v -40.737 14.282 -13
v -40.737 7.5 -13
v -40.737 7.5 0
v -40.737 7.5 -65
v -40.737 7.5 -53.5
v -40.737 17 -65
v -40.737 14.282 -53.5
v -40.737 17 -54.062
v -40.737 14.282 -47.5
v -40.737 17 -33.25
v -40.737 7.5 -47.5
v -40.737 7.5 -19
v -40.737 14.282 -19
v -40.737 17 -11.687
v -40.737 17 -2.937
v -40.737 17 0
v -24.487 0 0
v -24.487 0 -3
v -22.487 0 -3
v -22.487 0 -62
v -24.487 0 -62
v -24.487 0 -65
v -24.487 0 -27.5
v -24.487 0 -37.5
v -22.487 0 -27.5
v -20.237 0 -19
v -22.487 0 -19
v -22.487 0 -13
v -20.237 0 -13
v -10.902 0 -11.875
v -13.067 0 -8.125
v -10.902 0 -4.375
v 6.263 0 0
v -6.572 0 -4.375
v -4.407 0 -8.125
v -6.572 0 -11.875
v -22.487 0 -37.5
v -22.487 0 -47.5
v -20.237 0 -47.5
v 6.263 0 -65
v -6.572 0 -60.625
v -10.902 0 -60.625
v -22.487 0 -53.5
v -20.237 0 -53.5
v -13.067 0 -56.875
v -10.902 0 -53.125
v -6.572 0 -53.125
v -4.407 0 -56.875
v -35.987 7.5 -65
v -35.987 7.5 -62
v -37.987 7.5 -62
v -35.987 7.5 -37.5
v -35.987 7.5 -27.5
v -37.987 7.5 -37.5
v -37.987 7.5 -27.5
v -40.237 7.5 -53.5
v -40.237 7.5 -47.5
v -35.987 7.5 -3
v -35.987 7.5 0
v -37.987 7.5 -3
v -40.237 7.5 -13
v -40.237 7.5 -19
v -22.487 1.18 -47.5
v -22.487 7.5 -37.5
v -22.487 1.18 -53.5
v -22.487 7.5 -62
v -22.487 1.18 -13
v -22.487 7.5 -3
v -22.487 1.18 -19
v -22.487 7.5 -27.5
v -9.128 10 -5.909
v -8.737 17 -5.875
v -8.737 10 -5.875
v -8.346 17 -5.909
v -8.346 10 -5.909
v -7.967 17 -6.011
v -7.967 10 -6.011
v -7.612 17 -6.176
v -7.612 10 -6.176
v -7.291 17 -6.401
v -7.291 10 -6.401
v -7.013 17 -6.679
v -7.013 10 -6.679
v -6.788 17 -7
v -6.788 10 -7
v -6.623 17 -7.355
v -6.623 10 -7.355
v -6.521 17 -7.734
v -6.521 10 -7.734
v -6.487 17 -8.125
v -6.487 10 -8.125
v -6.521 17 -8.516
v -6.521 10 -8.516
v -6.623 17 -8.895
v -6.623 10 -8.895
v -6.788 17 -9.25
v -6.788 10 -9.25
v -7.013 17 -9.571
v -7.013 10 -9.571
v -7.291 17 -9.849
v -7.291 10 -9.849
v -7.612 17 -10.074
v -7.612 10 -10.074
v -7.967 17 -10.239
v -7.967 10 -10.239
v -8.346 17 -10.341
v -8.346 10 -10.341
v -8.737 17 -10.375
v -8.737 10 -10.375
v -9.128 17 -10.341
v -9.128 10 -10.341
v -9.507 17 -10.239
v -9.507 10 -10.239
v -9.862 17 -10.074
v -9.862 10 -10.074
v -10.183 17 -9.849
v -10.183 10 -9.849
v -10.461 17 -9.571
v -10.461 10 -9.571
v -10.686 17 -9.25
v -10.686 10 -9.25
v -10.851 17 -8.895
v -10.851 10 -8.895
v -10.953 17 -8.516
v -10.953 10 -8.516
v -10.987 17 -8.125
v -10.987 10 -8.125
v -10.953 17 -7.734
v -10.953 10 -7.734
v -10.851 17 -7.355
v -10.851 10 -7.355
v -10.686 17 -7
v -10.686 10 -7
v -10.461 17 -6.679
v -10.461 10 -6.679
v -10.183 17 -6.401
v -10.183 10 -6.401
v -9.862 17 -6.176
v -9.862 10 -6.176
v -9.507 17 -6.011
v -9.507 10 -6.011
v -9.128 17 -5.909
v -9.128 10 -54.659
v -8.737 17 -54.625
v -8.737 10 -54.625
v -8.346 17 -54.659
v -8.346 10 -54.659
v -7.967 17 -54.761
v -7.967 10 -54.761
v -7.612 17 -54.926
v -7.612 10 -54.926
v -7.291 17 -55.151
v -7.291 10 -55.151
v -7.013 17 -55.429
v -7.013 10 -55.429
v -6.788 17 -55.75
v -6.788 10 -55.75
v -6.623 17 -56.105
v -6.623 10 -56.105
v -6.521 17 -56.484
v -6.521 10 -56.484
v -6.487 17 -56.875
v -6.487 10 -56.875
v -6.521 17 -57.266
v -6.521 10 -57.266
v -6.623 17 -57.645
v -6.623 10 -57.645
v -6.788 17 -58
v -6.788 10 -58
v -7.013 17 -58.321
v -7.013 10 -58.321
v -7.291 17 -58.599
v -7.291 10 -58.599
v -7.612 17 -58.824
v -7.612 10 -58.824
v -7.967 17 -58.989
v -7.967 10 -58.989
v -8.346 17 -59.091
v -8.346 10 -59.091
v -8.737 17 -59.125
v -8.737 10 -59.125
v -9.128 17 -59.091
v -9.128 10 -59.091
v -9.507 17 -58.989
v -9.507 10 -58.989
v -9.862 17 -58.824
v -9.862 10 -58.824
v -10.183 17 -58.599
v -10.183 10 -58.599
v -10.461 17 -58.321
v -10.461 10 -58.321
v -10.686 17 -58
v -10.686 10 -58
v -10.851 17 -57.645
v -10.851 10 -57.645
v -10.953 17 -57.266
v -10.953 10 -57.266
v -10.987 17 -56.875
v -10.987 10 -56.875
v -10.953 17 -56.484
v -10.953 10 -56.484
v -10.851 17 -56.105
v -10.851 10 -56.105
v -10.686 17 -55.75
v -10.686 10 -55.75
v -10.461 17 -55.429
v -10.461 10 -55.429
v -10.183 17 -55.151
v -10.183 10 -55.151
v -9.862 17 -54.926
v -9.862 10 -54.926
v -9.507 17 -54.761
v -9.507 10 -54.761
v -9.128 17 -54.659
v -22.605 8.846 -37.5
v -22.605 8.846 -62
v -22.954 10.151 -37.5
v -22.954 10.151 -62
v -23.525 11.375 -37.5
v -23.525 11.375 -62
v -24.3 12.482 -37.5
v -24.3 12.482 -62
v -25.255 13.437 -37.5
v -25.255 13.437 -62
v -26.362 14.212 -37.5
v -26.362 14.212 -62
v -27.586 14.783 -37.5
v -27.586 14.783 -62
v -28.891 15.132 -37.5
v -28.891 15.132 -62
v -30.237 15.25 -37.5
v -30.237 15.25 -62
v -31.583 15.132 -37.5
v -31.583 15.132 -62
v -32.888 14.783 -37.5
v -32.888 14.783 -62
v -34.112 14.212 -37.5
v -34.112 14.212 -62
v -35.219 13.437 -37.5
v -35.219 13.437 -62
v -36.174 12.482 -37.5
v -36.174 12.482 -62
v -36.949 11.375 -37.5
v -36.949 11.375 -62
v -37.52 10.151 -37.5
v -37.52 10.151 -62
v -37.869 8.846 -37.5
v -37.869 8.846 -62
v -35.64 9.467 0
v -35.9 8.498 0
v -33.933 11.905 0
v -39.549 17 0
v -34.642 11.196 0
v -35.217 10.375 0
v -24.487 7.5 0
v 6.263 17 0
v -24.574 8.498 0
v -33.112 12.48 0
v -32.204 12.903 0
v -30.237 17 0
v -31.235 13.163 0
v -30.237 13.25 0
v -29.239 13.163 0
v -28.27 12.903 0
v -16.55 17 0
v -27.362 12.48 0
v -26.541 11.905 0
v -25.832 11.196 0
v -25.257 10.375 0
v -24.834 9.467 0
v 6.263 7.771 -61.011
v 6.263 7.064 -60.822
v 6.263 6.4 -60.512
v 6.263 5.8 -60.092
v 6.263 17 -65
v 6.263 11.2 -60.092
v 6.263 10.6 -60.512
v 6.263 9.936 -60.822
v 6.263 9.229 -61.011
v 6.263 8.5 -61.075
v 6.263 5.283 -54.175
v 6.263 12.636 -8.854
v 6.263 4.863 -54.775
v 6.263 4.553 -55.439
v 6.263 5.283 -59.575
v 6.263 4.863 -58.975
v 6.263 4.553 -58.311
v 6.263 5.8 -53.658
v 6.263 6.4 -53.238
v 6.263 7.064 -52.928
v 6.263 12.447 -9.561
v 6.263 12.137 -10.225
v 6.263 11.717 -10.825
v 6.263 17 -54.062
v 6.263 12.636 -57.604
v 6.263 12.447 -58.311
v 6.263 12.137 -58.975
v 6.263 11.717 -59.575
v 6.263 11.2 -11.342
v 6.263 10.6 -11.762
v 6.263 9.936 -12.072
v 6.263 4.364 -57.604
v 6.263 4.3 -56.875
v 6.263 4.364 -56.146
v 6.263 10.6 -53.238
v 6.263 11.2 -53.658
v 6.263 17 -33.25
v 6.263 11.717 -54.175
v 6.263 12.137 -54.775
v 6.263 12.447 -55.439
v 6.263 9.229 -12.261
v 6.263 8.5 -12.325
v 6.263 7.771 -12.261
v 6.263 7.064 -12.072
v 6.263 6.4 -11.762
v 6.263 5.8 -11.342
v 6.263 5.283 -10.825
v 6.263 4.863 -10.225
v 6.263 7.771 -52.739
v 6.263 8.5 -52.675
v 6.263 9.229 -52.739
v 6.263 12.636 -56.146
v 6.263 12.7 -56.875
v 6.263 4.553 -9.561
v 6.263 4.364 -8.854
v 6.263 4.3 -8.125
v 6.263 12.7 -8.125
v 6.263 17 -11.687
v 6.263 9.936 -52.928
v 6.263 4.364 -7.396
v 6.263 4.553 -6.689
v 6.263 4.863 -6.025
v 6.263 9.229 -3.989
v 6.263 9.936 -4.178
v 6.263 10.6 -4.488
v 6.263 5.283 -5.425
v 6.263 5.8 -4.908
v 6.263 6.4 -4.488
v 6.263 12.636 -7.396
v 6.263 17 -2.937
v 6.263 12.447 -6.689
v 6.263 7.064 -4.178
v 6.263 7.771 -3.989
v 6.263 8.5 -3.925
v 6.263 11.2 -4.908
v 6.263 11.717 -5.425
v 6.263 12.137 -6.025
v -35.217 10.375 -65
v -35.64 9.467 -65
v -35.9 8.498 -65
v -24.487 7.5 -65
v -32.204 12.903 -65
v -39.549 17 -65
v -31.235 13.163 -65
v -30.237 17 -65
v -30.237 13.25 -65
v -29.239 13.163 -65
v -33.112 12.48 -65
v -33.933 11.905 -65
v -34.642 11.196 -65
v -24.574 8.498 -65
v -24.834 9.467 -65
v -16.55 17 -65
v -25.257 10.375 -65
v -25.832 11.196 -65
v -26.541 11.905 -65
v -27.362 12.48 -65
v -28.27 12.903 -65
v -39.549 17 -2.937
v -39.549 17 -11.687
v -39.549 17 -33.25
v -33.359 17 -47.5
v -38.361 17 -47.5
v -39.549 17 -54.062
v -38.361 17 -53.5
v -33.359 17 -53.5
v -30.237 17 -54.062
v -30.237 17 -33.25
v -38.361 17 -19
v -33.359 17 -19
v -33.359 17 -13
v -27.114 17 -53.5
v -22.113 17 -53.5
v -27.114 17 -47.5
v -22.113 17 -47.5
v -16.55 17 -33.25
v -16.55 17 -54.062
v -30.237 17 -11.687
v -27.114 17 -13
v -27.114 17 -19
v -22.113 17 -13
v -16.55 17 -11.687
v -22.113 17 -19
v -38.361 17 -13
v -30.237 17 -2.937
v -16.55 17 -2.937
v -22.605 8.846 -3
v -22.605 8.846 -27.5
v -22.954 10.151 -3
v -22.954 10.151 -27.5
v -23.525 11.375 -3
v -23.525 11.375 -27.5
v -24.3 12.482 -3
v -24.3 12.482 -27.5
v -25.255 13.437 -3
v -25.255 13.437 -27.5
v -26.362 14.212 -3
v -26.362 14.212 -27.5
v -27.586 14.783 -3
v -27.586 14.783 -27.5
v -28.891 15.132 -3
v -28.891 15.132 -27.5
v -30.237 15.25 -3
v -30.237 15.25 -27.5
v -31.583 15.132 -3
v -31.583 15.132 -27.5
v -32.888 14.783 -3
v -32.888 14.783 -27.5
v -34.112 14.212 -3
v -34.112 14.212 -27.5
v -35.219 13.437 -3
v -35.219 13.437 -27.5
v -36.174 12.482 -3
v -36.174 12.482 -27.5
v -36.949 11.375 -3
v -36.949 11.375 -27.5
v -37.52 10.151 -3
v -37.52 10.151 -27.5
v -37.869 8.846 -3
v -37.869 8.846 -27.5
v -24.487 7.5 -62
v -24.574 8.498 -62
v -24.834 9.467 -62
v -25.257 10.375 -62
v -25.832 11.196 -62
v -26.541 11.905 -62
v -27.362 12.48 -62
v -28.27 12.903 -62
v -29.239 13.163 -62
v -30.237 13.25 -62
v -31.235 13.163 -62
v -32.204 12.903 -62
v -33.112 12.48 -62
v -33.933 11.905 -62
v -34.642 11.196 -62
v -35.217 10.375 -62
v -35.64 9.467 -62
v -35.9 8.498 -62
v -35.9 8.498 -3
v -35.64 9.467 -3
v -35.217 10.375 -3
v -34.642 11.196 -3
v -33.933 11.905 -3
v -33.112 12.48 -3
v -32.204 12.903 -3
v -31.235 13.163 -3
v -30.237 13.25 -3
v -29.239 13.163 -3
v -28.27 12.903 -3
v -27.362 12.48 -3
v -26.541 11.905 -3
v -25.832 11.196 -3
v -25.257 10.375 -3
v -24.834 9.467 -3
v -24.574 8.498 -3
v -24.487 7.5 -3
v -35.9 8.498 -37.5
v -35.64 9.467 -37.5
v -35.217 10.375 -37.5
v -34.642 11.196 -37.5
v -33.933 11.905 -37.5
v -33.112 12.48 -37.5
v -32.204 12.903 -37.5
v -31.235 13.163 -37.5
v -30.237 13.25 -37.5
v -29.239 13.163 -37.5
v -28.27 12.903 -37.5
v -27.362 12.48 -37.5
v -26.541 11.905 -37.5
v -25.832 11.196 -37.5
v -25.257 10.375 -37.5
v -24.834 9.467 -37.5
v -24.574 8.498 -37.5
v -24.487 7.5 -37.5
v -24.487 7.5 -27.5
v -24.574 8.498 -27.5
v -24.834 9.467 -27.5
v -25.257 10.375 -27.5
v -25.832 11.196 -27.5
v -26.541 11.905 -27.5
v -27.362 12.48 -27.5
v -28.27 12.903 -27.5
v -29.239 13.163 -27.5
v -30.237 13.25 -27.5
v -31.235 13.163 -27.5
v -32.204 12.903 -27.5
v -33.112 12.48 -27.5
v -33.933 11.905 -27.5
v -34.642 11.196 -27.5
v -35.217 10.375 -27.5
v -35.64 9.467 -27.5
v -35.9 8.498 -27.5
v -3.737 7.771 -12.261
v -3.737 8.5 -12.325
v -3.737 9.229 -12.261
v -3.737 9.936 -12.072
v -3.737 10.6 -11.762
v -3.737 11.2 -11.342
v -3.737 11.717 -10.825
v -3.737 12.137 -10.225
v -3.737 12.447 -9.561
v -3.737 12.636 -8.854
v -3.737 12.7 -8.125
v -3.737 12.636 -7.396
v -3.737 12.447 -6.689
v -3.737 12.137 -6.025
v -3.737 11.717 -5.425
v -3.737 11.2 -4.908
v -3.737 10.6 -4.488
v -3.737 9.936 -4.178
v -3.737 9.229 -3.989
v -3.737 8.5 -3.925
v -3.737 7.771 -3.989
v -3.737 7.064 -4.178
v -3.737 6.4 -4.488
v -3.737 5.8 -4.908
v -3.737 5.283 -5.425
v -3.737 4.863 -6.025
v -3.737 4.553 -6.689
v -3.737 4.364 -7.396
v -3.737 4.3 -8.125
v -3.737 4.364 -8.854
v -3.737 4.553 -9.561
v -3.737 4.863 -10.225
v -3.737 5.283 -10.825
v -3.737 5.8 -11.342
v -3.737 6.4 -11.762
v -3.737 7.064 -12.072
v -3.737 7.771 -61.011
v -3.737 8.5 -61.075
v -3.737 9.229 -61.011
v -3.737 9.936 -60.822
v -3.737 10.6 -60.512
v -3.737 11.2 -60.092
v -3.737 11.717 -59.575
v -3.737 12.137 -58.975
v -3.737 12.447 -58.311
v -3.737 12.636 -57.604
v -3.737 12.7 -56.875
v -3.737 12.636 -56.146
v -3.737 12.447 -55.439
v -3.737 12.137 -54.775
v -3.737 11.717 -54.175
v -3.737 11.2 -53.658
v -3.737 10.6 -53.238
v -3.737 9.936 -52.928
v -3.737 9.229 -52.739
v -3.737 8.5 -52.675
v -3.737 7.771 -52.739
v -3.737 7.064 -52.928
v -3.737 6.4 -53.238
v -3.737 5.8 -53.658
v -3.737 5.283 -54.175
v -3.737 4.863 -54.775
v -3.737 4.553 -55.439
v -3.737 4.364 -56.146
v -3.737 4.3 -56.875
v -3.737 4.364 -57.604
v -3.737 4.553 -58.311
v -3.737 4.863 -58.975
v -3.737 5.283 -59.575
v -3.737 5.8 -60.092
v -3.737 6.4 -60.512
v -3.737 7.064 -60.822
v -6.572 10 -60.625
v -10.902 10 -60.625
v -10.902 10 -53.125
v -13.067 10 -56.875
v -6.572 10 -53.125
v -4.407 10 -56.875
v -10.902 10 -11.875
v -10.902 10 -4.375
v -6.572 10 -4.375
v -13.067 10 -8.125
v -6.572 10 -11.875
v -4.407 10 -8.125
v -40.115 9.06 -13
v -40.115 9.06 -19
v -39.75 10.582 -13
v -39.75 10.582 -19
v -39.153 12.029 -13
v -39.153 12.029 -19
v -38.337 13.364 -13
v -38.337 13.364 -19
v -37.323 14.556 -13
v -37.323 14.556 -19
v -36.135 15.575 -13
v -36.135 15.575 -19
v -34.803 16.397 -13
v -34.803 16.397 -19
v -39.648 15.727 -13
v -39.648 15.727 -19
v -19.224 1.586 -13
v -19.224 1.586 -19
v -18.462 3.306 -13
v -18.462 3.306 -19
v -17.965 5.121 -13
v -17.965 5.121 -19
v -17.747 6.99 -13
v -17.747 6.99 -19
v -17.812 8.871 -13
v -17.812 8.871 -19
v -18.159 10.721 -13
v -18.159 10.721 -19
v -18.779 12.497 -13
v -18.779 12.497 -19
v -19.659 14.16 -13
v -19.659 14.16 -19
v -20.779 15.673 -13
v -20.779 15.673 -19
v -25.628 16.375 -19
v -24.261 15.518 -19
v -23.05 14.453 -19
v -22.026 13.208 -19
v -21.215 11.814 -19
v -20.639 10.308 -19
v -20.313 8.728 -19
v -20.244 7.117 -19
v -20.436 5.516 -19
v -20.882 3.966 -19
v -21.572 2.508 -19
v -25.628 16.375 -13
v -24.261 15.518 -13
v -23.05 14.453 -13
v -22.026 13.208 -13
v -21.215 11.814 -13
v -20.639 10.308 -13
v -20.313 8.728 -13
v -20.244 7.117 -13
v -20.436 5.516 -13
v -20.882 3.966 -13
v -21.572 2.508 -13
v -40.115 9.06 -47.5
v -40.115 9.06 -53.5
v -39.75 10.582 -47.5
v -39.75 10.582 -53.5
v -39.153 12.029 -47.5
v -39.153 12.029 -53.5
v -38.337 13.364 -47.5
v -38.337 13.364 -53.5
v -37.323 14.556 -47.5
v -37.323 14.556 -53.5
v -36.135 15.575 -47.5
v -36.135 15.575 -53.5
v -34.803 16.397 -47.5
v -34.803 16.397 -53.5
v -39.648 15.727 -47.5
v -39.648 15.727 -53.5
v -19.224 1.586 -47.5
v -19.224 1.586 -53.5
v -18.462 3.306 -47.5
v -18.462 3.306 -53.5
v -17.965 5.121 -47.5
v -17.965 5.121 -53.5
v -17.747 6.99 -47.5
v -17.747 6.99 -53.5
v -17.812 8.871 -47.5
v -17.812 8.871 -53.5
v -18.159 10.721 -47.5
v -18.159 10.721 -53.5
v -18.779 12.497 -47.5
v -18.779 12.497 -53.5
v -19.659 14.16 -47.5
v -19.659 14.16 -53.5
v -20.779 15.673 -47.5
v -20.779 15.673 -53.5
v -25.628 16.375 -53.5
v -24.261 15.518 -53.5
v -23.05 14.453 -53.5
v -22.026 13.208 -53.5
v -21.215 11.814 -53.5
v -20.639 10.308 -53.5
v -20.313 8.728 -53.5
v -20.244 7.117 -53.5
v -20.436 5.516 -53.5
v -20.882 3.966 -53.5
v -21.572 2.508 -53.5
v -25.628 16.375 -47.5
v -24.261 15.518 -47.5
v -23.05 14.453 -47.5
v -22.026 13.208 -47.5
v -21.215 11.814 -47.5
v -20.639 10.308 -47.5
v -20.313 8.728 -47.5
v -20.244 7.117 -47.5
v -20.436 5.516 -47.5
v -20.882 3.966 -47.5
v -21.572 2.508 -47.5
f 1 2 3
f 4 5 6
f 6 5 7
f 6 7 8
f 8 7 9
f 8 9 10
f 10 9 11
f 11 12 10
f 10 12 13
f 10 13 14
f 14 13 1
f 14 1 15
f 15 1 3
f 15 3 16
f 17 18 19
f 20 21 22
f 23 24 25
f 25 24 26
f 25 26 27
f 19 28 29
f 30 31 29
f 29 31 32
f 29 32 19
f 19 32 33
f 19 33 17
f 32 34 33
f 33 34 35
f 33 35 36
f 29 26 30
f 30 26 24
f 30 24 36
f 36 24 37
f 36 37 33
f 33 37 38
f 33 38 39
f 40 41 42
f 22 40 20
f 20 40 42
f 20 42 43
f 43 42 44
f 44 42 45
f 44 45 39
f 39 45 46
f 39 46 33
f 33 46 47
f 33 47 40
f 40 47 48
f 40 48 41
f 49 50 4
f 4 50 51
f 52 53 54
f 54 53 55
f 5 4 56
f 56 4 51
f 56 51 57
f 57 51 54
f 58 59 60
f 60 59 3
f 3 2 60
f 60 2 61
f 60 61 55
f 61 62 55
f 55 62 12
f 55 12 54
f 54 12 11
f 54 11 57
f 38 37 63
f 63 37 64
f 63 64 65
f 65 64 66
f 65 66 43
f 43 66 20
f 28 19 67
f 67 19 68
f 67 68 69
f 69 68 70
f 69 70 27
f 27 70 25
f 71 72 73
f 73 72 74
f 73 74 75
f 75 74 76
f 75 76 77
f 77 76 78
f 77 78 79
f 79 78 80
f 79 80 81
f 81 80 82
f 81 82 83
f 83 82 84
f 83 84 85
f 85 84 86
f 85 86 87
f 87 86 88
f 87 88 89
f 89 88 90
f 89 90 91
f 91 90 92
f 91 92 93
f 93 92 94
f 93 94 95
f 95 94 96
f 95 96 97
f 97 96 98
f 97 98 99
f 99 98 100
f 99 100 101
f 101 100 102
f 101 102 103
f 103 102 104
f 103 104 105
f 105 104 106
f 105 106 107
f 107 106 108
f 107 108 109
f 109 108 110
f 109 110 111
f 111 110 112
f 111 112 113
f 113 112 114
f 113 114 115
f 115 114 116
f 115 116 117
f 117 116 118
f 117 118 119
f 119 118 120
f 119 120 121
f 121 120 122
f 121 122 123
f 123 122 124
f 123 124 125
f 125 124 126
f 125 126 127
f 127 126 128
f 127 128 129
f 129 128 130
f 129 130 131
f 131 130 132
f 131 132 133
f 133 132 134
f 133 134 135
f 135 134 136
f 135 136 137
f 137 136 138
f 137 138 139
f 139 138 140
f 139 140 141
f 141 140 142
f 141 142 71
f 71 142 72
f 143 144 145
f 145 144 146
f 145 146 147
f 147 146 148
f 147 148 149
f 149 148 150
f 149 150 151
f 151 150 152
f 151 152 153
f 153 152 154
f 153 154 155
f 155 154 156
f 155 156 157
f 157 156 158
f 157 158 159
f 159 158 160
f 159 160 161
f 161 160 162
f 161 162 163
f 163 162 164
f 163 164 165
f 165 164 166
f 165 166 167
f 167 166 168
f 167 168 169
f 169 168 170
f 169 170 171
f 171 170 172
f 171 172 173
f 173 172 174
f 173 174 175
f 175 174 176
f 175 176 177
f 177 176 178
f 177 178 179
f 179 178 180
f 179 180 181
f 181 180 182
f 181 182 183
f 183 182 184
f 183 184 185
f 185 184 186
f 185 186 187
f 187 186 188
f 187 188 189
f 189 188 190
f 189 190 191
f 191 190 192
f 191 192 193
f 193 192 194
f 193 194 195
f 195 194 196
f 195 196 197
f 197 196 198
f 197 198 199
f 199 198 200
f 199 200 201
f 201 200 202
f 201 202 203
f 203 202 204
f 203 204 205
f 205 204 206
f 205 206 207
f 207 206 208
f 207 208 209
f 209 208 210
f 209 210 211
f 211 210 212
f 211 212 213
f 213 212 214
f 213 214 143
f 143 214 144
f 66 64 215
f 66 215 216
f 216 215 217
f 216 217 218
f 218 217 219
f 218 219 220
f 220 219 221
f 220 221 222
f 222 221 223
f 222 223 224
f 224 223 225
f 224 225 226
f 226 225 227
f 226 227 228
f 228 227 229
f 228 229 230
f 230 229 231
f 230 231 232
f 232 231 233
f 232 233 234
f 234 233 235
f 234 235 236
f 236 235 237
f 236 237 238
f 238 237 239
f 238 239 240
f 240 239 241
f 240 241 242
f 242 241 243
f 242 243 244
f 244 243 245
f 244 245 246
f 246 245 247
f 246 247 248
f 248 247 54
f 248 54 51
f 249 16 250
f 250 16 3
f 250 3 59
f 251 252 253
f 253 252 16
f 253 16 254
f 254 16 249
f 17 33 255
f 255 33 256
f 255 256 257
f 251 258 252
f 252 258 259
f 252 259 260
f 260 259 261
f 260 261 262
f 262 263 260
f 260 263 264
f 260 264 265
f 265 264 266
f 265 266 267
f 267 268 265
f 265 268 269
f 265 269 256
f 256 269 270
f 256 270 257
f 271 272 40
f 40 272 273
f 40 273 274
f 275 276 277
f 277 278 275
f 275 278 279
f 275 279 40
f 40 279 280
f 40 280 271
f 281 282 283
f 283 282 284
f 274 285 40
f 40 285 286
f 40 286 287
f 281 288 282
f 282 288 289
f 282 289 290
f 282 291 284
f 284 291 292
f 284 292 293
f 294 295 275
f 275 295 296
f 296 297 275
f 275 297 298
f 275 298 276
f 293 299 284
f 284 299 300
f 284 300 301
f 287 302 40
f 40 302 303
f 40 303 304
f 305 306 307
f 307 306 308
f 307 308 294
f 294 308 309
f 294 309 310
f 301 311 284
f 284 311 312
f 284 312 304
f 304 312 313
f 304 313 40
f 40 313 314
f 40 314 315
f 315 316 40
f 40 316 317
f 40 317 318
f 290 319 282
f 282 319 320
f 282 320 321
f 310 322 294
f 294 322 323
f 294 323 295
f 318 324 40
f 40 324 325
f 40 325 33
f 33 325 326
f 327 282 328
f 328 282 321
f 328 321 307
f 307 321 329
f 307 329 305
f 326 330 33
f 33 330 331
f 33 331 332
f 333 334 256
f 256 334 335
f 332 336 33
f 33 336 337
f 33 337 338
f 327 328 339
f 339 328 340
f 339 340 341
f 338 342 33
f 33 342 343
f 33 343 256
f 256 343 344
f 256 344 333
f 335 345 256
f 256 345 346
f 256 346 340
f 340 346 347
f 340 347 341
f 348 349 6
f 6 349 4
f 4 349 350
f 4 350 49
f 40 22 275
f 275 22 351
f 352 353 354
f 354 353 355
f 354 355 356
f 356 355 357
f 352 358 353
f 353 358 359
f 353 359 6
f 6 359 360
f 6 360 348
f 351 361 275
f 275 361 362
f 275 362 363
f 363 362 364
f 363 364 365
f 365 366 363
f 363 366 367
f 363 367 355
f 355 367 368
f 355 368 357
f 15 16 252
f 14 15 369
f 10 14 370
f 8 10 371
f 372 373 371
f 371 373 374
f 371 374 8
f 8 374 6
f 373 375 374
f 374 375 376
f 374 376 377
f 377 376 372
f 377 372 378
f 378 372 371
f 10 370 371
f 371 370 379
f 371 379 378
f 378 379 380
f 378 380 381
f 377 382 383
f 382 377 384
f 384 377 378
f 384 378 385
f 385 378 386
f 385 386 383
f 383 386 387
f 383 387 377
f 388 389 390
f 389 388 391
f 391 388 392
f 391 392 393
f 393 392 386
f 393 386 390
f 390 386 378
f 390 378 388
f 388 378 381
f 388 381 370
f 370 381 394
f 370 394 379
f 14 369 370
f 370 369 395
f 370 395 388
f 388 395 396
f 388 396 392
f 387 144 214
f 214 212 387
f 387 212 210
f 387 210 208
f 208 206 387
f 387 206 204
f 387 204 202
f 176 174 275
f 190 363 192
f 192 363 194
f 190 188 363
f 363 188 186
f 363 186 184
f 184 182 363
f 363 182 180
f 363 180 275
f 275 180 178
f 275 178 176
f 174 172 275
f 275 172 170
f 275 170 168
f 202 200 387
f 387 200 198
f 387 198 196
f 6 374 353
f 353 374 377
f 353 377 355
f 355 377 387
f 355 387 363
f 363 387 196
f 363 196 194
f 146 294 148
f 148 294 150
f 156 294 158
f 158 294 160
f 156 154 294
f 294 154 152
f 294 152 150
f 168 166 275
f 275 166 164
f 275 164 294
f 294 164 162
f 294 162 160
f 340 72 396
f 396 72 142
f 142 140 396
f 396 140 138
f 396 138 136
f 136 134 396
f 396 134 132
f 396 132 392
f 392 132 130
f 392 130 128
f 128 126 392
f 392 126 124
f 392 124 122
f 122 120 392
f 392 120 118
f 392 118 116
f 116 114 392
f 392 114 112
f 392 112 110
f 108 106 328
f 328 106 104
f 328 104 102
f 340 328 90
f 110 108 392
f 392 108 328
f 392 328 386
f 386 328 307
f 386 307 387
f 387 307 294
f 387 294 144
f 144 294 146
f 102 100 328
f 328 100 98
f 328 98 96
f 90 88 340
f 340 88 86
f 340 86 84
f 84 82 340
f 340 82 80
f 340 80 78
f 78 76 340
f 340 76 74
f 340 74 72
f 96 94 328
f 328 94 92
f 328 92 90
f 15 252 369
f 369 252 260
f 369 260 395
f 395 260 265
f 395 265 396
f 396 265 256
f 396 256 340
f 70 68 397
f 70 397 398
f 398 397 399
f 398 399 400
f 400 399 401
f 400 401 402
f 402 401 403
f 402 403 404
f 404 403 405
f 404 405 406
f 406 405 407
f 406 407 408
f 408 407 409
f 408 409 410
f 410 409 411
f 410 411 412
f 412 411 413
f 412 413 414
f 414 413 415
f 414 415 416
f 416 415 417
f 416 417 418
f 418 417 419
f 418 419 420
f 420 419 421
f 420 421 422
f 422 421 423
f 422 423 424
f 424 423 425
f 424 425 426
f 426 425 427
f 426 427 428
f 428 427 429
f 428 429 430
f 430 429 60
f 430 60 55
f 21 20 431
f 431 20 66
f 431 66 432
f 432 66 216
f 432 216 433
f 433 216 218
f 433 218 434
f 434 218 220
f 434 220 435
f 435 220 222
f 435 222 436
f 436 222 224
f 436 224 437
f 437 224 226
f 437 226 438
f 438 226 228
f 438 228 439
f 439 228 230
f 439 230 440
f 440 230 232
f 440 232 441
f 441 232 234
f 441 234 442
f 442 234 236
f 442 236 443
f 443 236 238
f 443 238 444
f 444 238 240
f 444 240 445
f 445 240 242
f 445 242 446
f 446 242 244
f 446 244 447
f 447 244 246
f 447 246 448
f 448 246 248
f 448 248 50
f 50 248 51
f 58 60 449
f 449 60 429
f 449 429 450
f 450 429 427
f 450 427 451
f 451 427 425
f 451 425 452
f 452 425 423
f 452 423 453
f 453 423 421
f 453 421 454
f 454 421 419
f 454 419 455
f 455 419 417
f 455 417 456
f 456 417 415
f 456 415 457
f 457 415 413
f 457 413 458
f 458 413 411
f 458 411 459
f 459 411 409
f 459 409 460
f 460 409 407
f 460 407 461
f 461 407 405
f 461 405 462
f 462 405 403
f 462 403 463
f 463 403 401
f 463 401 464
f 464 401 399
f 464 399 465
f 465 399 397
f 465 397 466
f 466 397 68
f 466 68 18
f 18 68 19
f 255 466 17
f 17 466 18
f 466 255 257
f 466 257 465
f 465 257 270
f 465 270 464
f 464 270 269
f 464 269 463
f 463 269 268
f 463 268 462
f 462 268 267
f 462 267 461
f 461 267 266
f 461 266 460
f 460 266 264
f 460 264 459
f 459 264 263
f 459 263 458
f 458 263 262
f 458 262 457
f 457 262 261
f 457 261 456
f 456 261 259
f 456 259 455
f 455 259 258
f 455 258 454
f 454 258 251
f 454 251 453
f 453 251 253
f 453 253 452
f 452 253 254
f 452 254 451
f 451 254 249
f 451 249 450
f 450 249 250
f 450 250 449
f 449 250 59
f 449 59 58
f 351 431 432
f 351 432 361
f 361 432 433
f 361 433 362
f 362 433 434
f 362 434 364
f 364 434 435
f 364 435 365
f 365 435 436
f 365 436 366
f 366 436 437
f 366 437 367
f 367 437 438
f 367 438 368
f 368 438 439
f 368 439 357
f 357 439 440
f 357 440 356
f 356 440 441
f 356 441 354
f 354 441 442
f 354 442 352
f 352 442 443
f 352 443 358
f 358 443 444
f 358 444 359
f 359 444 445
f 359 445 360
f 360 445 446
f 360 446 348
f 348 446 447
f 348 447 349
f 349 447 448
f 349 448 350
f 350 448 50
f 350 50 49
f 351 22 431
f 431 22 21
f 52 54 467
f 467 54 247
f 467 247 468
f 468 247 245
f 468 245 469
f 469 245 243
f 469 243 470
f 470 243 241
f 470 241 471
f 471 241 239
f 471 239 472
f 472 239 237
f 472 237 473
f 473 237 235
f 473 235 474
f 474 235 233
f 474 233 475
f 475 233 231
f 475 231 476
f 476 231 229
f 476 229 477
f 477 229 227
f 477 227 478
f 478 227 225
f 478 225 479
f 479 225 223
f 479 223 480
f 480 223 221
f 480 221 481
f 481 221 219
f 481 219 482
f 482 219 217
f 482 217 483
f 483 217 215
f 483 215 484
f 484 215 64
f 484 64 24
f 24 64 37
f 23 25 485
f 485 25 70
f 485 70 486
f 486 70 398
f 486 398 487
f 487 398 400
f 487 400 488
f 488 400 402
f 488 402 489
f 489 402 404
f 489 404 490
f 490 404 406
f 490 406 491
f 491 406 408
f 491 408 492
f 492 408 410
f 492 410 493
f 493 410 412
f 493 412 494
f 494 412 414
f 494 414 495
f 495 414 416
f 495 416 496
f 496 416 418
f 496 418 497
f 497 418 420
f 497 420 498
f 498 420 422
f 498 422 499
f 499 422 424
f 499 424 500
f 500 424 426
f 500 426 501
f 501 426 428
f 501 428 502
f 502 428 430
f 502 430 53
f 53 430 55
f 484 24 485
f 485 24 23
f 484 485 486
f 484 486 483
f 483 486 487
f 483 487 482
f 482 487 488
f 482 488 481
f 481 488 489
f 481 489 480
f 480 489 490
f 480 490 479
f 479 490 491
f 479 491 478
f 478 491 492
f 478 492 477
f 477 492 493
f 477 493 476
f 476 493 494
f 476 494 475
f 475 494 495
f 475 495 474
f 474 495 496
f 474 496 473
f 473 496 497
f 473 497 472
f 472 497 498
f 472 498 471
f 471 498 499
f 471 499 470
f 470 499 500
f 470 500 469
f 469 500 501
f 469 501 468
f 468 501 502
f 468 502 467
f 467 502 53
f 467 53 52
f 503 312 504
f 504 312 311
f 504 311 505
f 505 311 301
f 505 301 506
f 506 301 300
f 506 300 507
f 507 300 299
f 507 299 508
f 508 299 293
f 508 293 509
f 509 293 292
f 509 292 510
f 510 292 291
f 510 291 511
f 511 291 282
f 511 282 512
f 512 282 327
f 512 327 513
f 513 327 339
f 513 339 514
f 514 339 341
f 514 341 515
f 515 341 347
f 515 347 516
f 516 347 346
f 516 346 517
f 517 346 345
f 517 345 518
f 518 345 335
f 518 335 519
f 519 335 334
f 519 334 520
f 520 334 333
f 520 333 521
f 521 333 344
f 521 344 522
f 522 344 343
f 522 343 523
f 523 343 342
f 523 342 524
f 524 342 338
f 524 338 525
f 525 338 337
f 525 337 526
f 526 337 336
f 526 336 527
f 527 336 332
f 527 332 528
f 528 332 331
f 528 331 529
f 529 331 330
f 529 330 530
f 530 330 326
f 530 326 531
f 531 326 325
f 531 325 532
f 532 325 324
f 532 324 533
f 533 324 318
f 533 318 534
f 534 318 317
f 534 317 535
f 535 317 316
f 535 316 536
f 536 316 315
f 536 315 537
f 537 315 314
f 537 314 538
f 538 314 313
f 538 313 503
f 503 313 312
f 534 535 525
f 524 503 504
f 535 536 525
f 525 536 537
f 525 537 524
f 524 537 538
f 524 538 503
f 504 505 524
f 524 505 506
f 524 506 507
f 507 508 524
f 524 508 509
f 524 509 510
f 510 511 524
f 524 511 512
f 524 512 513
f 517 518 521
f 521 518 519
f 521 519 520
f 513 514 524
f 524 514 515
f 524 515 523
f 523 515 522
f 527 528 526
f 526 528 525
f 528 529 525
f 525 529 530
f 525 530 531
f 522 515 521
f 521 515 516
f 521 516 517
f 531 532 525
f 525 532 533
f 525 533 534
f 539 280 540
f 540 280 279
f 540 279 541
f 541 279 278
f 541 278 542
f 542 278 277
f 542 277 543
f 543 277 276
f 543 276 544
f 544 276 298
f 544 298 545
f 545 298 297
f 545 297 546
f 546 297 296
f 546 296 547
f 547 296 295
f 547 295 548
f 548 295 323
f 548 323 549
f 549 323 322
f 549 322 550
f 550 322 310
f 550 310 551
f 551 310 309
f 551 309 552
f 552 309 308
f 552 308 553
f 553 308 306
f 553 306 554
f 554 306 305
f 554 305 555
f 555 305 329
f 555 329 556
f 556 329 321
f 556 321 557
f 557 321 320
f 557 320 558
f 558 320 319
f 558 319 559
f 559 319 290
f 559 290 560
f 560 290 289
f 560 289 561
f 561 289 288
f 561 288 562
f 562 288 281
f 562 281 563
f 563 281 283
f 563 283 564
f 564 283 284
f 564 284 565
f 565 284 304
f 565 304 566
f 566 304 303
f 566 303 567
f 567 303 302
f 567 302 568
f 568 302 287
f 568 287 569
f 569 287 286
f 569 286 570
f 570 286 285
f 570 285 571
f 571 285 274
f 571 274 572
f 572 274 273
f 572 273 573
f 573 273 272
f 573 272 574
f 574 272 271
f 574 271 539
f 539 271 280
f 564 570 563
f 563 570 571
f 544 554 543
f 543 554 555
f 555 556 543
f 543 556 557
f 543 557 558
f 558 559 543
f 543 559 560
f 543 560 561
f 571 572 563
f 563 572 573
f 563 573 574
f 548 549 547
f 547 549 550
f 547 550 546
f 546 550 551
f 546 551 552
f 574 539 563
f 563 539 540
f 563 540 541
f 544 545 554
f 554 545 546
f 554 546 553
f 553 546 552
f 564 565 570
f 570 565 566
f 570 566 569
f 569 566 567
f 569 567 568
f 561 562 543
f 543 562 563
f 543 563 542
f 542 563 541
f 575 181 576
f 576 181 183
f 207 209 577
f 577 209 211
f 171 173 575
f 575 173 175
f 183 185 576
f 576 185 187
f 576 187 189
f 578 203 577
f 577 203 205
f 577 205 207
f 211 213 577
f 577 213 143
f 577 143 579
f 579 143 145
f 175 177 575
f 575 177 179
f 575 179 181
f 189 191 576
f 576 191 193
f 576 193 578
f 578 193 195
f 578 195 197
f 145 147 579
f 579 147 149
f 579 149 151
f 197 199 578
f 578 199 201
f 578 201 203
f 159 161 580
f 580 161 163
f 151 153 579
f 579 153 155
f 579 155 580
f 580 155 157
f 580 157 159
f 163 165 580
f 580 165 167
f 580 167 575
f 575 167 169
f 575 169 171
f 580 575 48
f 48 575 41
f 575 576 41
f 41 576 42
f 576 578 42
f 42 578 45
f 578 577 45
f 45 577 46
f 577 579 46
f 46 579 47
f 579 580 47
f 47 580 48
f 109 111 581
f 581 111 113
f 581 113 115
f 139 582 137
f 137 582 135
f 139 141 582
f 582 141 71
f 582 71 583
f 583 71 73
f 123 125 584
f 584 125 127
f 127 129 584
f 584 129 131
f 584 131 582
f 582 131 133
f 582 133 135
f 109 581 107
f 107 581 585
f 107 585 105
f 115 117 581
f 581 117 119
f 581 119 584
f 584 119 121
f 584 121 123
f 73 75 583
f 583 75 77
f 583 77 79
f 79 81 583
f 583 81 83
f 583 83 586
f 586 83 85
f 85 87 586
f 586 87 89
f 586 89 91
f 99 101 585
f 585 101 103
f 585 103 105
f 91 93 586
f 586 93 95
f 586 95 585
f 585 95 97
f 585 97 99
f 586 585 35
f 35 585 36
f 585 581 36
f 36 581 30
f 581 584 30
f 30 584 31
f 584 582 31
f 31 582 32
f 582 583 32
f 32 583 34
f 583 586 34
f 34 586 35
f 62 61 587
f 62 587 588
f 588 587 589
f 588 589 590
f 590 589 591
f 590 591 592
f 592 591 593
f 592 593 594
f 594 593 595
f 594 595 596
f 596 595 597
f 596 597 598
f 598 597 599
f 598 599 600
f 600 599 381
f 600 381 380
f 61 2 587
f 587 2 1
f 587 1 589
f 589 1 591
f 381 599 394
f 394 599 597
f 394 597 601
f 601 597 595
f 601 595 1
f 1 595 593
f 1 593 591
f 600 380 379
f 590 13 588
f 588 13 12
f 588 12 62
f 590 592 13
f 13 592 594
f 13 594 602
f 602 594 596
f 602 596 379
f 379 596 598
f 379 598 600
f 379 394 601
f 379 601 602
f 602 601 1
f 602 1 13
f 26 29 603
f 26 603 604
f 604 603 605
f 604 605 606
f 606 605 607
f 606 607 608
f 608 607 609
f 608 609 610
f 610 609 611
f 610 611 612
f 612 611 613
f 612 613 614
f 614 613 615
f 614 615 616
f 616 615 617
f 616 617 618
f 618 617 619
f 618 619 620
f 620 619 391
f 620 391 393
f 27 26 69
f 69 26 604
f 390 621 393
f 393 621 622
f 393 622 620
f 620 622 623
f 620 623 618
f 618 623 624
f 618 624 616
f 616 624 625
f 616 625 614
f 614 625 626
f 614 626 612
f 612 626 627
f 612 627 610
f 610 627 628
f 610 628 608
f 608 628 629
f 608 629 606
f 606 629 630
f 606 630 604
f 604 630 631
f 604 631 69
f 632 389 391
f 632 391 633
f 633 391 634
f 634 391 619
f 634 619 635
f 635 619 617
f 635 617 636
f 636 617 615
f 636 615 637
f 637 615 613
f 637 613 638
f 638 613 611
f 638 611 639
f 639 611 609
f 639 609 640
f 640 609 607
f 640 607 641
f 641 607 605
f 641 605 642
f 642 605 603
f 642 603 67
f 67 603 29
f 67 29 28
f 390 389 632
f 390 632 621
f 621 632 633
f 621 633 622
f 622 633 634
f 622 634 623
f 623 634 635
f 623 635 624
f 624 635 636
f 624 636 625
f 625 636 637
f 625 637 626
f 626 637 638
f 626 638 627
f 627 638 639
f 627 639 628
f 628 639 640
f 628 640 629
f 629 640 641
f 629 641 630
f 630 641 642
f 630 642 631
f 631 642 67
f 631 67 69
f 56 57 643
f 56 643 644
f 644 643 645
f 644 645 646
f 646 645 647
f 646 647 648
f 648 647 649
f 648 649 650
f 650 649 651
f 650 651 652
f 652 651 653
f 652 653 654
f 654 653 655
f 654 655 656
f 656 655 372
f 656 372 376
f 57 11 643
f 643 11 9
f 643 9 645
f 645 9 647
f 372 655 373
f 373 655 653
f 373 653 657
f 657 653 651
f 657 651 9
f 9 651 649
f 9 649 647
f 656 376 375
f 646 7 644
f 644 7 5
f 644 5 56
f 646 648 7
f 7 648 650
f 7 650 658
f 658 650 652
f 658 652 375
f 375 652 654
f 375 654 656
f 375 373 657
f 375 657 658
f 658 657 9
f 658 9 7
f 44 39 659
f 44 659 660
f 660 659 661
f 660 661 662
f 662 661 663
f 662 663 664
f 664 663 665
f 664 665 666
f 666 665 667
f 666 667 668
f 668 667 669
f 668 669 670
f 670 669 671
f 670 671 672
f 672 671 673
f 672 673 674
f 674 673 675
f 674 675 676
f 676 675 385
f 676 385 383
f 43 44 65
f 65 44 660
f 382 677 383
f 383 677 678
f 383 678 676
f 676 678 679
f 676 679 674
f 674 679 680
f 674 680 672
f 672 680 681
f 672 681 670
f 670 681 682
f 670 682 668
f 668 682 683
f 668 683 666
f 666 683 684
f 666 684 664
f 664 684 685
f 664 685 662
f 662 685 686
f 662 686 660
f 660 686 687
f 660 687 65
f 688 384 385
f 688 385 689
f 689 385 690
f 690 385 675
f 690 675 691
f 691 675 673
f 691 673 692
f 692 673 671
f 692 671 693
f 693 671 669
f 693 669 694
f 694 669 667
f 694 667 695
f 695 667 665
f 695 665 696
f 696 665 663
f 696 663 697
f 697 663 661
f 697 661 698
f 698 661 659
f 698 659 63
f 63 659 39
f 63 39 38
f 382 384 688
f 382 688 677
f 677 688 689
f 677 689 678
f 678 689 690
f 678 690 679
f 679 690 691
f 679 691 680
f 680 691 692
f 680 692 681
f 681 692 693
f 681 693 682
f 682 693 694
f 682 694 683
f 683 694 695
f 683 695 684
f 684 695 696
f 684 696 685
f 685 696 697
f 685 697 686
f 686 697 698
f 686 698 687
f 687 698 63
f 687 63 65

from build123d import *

# Parameters (mm, degrees)
SKETCH_1_W          = 47
SKETCH_1_H          = 65
EXTRUDE_1_DEPTH     = 17
CUT_EXTRUDE_1_DEPTH = 59
CUT_EXTRUDE_2_DEPTH = 79.571641677
EXTRUDE_2_DEPTH     = 10
SKETCH_7_R          = 4.2
CUT_EXTRUDE_3_DEPTH = 10
SKETCH_8_R          = 2.25
CUT_EXTRUDE_4_DEPTH = 79.571641677
CUT_EXTRUDE_5_DEPTH = 10
CUT_EXTRUDE_START   = -10
SKETCH_10_R         = 12.5
SKETCH_10_R_2       = 10
CUT_EXTRUDE_6_DEPTH = 6
CUT_EXTRUDE_START_2 = -20
SKETCH_11_R         = 12.5
SKETCH_11_R_2       = 10
CUT_EXTRUDE_7_DEPTH = 6


with BuildPart() as part:
    # Эскиз1 → Бобышка-Вытянуть1 (new body)
    with BuildSketch(Plane(origin=(0, 0, 0), x_dir=(1, 0, 0), z_dir=(0, 1, 0))):
        with Locations((-17.236996401, 32.5)):
            Rectangle(SKETCH_1_W, SKETCH_1_H)
    extrude(amount=EXTRUDE_1_DEPTH)

    # Эскиз2 → Вырез-Вытянуть1 (cut)
    with BuildSketch(Plane.XY.offset(-3)):
        with BuildLine():
            Line((-22.486996401, 7.5), (-22.486996401, 0))
            Line((-22.486996401, 0), (-40.736996401, 0))
            Line((-40.736996401, 0), (-40.736996401, 7.5))
            Line((-40.736996401, 7.5), (-37.986996401, 7.5))
            ThreePointArc((-37.986996401, 7.5), (-30.236996401, 15.25), (-22.486996401, 7.5))
        make_face()
    extrude(amount=-CUT_EXTRUDE_1_DEPTH, mode=Mode.SUBTRACT)

    # Эскиз5 → Вырез-Вытянуть2 (cut, through all)
    with BuildSketch(Plane.XY):
        with BuildLine():
            Line((-35.986996401, 7.5), (-40.736996401, 7.5))
            Line((-40.736996401, 7.5), (-40.736996401, 0))
            Line((-40.736996401, 0), (-24.486996401, 0))
            Line((-24.486996401, 0), (-24.486996401, 7.5))
            ThreePointArc((-24.486996401, 7.5), (-30.236996401, 13.25), (-35.986996401, 7.5))
        make_face()
    extrude(amount=-CUT_EXTRUDE_2_DEPTH, mode=Mode.SUBTRACT)

    # Эскиз6 → Бобышка-Вытянуть2 (add)
    with BuildSketch(Plane.XY.offset(-27.5)):
        with BuildLine():
            Line((-35.986996401, 7.5), (-40.736996401, 7.5))
            Line((-40.736996401, 7.5), (-40.736996401, 17))
            Line((-40.736996401, 17), (-24.486996401, 17))
            Line((-24.486996401, 17), (-22.486996401, 17))
            Line((-22.486996401, 17), (-22.486996401, 0))
            Line((-22.486996401, 0), (-24.486996401, 0))
            Line((-24.486996401, 0), (-24.486996401, 7.5))
            ThreePointArc((-24.486996401, 7.5), (-30.236996401, 13.25), (-35.986996401, 7.5))
        make_face()
    extrude(amount=-EXTRUDE_2_DEPTH)

    # Эскиз7 → Вырез-Вытянуть3 (cut)
    with BuildSketch(Plane(origin=(6.263003599, 0, 0), x_dir=(0, 0, -1), z_dir=(1, 0, 0))):
        with Locations((8.125, 8.5)):
            Circle(SKETCH_7_R)
        with Locations((56.875, 8.5)):
            Circle(SKETCH_7_R)
    extrude(amount=-CUT_EXTRUDE_3_DEPTH, mode=Mode.SUBTRACT)

    # Эскиз8 → Вырез-Вытянуть4 (cut, through all)
    with BuildSketch(Plane(origin=(0, 17, 0), x_dir=(1, 0, 0), z_dir=(0, 1, 0))):
        with Locations(Location((-8.736996401, 8.125, 0), (0, 0, 270))):
            Circle(SKETCH_8_R)
        with Locations(Location((-8.736996401, 56.875, 0), (0, 0, 270))):
            Circle(SKETCH_8_R)
    extrude(amount=-CUT_EXTRUDE_4_DEPTH, mode=Mode.SUBTRACT)

    # Эскиз9 → Вырез-Вытянуть5 (cut)
    with BuildSketch(Plane.XZ):
        Polygon((-4.406869382, -56.875), (-6.571932892, -53.125), (-10.902059911, -53.125), (-13.06712342, -56.875), (-10.902059911, -60.625), (-6.571932892, -60.625), align=None)
        Polygon((-4.406869382, -8.125), (-6.571932892, -4.375), (-10.902059911, -4.375), (-13.06712342, -8.125), (-10.902059911, -11.875), (-6.571932892, -11.875), align=None)
    extrude(amount=-CUT_EXTRUDE_5_DEPTH, mode=Mode.SUBTRACT)

    # Эскиз10 → Вырез-Вытянуть6 (cut)
    with BuildSketch(Plane.XY.offset(-3).offset(CUT_EXTRUDE_START)):
        with Locations((-30.236996401, 7.5)):
            Circle(SKETCH_10_R)
        with Locations((-30.236996401, 7.5)):
            Circle(SKETCH_10_R_2, mode=Mode.SUBTRACT)
    extrude(amount=-CUT_EXTRUDE_6_DEPTH, mode=Mode.SUBTRACT)

    # Эскиз11 → Вырез-Вытянуть7 (cut)
    with BuildSketch(Plane.XY.offset(-27.5).offset(CUT_EXTRUDE_START_2)):
        with Locations((-30.236996401, 7.5)):
            Circle(SKETCH_11_R)
        with Locations((-30.236996401, 7.5)):
            Circle(SKETCH_11_R_2, mode=Mode.SUBTRACT)
    extrude(amount=-CUT_EXTRUDE_7_DEPTH, mode=Mode.SUBTRACT)


solid = part.part
